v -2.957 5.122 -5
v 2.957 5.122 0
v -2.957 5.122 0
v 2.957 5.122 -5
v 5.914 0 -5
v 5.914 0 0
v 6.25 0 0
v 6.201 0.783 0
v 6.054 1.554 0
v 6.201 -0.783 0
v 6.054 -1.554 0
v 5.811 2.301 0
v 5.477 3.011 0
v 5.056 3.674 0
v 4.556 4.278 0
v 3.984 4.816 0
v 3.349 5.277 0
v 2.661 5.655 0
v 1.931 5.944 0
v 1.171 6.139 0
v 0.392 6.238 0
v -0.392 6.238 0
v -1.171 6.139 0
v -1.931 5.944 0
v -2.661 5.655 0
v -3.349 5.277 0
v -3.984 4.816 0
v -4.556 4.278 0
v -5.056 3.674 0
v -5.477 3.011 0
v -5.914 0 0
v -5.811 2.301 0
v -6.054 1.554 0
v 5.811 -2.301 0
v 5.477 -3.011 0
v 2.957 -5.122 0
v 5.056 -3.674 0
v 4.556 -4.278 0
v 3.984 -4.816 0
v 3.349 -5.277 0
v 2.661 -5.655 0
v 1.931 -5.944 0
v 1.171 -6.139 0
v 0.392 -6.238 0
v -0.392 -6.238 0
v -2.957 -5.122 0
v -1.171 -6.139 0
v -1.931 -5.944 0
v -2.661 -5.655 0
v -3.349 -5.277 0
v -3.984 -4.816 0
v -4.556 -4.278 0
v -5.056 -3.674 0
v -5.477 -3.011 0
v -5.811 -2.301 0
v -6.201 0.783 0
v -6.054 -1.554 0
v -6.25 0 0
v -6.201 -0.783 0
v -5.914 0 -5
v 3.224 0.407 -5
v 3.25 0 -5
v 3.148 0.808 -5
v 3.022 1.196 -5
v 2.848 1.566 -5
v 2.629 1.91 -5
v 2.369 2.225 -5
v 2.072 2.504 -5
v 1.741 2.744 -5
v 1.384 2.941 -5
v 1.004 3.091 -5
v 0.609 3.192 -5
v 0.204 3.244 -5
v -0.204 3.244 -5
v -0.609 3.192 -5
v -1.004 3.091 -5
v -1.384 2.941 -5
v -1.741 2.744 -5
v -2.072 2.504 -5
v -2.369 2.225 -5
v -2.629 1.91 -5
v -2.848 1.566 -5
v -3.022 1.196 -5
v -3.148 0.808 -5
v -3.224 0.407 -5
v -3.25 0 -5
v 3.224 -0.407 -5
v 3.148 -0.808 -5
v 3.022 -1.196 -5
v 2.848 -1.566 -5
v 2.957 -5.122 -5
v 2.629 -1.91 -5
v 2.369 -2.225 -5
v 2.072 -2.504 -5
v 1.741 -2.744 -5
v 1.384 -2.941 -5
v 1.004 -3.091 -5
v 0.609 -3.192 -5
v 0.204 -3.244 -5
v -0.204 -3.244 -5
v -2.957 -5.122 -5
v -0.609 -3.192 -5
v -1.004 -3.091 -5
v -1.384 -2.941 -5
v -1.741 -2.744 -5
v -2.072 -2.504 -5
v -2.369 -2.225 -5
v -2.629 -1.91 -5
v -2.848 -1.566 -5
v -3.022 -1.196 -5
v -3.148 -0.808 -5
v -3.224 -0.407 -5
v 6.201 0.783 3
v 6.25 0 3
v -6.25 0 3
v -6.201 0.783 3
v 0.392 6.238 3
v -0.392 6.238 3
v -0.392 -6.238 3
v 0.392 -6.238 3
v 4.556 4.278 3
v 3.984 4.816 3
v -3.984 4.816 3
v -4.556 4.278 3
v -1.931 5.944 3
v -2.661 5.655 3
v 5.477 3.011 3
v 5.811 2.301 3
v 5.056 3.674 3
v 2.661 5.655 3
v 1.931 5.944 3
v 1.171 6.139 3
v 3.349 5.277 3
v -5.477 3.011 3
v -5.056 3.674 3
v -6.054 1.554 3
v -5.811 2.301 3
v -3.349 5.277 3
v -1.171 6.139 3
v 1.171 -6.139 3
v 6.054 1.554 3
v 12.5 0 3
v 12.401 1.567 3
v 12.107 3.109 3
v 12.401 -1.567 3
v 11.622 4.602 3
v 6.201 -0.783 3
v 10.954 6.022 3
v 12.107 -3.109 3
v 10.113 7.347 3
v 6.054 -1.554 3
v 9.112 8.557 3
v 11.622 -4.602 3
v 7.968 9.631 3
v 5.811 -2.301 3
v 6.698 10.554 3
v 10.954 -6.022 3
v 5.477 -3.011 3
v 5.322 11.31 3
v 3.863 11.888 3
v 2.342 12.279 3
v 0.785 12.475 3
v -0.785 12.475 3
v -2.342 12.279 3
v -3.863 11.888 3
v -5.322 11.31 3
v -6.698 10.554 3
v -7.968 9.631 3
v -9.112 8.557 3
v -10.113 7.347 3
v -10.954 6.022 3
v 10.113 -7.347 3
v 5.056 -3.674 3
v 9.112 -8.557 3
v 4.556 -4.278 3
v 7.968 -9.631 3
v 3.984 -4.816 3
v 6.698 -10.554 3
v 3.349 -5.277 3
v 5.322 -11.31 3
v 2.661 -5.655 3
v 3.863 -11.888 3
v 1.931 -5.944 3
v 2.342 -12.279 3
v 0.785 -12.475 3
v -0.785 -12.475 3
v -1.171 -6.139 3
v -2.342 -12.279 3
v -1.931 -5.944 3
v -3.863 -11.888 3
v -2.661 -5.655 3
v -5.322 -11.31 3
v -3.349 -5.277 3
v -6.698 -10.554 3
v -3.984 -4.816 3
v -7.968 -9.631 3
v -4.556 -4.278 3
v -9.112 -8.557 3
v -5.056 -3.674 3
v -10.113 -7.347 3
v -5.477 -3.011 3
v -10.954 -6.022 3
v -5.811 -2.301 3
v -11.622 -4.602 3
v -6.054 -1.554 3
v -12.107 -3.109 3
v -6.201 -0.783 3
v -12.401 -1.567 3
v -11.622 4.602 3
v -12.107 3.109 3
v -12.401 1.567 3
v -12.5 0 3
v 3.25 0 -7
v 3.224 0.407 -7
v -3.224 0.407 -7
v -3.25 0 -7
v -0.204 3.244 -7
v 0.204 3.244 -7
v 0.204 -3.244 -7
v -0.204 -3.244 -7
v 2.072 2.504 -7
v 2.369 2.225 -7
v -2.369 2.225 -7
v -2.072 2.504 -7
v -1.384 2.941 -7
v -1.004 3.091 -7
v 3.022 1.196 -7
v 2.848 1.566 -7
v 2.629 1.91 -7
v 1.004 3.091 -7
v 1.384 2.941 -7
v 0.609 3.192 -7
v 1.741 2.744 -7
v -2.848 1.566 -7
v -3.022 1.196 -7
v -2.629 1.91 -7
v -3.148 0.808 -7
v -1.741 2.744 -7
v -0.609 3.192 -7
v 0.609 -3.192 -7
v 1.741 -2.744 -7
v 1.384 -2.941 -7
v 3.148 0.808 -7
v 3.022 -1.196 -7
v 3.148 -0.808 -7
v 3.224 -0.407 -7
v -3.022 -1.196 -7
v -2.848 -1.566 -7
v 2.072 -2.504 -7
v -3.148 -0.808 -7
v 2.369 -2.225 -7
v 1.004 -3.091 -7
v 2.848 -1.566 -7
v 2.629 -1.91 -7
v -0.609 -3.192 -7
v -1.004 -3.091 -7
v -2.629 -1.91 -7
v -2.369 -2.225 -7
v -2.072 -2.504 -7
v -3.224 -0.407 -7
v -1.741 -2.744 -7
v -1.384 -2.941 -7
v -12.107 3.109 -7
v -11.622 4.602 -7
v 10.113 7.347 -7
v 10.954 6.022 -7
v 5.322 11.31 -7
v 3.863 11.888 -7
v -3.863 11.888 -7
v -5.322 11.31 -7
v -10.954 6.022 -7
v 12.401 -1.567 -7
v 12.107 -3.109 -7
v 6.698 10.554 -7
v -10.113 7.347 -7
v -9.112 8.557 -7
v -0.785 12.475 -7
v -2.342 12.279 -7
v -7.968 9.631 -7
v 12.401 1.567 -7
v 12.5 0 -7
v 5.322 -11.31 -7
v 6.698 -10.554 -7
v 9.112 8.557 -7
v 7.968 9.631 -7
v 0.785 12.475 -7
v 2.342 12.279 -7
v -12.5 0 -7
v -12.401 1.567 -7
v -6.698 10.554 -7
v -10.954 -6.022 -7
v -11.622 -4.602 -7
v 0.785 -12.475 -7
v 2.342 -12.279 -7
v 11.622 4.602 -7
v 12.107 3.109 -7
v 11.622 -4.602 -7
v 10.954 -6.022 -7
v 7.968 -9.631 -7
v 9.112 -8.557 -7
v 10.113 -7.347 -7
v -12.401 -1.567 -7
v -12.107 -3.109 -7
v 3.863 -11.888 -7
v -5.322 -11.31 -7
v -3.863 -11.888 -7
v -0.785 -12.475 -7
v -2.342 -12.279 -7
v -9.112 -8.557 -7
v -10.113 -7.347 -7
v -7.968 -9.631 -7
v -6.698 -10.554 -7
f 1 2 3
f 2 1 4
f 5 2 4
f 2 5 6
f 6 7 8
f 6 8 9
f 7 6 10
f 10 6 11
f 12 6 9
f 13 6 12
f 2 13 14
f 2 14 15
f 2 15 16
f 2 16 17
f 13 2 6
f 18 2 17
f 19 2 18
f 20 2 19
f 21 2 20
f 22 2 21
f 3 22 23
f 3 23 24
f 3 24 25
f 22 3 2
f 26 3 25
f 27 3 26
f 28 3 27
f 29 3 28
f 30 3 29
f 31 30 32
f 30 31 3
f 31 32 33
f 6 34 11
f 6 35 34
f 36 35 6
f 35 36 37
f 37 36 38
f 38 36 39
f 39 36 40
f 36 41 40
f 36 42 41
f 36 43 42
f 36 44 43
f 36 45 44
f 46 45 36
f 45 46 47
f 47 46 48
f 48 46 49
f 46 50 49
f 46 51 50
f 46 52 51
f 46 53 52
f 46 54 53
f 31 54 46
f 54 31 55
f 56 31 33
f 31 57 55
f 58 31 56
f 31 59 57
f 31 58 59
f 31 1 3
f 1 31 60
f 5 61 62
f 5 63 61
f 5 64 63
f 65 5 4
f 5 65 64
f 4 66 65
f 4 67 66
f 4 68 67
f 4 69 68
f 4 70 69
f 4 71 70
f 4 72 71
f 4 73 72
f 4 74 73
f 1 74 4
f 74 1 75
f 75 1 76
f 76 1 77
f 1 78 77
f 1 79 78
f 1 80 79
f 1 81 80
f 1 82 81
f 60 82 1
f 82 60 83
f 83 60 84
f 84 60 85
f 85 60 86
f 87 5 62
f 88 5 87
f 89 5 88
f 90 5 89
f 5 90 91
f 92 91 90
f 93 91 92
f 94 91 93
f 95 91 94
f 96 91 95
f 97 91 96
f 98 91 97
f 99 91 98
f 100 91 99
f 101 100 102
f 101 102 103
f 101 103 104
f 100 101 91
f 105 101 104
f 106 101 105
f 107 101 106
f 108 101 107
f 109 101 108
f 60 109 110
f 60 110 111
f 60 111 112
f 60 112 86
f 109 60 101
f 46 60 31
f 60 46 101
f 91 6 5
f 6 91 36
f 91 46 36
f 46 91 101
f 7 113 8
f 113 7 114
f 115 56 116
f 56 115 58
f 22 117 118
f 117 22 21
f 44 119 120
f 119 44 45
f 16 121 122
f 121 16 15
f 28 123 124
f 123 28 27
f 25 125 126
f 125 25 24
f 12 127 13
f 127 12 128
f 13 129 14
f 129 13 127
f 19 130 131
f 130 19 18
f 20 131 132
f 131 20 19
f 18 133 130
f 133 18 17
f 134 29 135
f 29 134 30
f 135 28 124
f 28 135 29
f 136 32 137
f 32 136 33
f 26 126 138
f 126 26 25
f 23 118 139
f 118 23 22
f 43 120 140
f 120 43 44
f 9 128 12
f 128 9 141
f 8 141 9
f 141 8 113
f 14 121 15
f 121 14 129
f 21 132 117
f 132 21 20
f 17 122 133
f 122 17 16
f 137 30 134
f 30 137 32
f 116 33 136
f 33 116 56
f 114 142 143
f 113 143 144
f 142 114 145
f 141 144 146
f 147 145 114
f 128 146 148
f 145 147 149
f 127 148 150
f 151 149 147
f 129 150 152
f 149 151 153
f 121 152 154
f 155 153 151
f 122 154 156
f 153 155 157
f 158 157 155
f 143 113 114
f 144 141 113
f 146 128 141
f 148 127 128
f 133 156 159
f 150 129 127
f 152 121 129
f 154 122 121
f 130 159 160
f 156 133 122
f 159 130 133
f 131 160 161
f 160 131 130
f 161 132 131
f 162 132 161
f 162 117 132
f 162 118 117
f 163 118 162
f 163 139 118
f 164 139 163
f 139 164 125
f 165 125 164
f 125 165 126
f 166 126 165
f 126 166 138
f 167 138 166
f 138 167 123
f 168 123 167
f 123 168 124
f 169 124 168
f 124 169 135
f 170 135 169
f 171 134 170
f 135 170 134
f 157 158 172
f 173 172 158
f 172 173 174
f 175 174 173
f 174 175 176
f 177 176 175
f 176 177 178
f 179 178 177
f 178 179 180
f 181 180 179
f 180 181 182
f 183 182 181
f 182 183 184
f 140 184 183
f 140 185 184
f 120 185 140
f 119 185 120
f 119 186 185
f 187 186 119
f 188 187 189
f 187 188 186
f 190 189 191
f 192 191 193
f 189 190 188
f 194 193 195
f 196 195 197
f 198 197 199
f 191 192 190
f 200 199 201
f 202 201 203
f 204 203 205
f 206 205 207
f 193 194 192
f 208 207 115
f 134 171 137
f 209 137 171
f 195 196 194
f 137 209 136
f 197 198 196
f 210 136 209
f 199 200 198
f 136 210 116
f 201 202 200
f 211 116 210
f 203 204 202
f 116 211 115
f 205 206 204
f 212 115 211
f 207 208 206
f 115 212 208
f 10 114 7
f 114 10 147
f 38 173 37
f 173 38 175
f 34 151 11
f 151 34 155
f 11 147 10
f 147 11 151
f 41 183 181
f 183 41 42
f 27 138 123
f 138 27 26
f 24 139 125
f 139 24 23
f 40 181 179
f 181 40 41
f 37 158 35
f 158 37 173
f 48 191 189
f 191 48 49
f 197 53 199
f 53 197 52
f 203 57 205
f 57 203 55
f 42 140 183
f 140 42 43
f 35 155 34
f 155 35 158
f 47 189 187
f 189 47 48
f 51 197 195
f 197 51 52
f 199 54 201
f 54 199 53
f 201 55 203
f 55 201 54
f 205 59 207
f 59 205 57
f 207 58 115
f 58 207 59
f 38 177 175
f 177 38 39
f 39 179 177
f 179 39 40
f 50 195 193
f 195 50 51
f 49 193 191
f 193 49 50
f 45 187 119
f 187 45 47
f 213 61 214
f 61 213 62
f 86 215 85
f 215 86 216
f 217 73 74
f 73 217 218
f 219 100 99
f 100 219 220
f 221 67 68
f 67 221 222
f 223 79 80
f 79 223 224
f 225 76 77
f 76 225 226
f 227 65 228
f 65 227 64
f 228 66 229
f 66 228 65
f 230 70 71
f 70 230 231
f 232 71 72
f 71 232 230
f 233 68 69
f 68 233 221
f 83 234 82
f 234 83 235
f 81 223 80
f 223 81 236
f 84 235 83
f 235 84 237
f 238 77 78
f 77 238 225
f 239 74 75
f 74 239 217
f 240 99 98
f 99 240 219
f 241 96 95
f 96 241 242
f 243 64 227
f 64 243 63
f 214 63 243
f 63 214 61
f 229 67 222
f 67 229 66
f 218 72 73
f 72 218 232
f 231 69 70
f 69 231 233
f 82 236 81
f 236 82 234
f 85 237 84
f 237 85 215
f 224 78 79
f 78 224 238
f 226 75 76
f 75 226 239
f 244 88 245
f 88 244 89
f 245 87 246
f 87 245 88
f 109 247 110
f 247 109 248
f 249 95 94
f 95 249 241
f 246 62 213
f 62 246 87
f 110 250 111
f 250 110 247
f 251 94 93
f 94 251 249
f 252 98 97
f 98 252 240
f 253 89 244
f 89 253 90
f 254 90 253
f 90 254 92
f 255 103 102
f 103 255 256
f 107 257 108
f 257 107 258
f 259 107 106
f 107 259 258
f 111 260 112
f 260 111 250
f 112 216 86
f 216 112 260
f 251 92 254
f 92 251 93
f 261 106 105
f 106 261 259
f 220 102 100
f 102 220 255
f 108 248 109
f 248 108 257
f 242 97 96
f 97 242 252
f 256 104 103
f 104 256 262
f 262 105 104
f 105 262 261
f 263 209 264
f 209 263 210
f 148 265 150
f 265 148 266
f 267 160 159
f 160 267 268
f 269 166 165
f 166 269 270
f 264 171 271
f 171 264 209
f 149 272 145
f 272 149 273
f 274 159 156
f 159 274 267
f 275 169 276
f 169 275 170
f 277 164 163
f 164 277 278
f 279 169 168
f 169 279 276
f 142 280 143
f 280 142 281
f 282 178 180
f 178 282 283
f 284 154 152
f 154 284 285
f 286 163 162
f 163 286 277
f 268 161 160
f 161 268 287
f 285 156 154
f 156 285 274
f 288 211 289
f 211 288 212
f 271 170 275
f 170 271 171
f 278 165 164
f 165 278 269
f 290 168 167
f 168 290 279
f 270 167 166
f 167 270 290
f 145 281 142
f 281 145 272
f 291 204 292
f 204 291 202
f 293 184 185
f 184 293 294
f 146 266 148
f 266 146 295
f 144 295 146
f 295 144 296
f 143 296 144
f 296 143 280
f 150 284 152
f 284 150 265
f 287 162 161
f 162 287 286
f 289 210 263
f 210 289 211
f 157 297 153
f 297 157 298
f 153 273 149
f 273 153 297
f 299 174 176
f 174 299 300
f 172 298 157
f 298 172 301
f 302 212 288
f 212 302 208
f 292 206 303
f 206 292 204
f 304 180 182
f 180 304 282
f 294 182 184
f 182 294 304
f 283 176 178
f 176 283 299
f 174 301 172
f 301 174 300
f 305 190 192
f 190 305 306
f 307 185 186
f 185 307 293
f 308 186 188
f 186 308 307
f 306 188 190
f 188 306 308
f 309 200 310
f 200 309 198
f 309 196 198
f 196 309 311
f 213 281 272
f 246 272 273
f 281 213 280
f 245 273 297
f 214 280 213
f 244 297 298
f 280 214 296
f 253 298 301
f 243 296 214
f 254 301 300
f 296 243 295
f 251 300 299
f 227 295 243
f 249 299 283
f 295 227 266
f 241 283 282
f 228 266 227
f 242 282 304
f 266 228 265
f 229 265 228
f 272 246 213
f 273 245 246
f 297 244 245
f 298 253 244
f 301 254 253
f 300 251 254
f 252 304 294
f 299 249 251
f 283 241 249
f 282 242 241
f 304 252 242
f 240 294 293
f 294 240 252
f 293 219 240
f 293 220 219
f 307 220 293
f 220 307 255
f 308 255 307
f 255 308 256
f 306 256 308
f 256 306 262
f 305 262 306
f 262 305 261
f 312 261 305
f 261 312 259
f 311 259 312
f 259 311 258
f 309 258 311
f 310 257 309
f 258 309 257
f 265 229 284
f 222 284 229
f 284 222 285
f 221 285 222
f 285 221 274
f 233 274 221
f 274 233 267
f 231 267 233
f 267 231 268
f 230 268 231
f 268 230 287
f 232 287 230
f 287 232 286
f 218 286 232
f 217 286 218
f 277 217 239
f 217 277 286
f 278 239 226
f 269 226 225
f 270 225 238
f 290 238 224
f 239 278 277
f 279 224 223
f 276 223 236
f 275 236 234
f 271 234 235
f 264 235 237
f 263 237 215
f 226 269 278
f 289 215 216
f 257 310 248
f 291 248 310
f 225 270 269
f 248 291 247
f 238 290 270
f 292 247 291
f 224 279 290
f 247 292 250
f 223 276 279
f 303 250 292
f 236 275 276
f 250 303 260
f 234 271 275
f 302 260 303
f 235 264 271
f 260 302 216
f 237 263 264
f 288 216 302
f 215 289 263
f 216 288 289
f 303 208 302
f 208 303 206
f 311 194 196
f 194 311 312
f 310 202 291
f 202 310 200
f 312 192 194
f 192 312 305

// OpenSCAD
$fn = 50;

difference() {
	union() {
		translate(v = [0, 0, -7.0]) {
			cylinder(h = 10.0, r = 12.5);
		}
	}
	union() {
		translate(v = [0, 0, 0]) {
			rotate(a = [0, 0, 0]) {
				difference() {
					union() {
						translate(v = [0, 0, -5]) {
							linear_extrude(height = 5) {
								polygon(points = [[5.914249999999999, 0.0], [2.957125, 5.1218907443321156], [-2.9571249999999982, 5.1218907443321156], [-5.914249999999999, 7.242867331857232e-16], [-2.9571250000000022, -5.121890744332115], [2.9571249999999956, -5.121890744332118]]);
							}
						}
					}
					union();
				}
			}
		}
		#cylinder(h = 3, r = 6.25);
		#translate(v = [0, 0, -100.0]) {
			cylinder(h = 200, r = 3.25);
		}
	}
}
